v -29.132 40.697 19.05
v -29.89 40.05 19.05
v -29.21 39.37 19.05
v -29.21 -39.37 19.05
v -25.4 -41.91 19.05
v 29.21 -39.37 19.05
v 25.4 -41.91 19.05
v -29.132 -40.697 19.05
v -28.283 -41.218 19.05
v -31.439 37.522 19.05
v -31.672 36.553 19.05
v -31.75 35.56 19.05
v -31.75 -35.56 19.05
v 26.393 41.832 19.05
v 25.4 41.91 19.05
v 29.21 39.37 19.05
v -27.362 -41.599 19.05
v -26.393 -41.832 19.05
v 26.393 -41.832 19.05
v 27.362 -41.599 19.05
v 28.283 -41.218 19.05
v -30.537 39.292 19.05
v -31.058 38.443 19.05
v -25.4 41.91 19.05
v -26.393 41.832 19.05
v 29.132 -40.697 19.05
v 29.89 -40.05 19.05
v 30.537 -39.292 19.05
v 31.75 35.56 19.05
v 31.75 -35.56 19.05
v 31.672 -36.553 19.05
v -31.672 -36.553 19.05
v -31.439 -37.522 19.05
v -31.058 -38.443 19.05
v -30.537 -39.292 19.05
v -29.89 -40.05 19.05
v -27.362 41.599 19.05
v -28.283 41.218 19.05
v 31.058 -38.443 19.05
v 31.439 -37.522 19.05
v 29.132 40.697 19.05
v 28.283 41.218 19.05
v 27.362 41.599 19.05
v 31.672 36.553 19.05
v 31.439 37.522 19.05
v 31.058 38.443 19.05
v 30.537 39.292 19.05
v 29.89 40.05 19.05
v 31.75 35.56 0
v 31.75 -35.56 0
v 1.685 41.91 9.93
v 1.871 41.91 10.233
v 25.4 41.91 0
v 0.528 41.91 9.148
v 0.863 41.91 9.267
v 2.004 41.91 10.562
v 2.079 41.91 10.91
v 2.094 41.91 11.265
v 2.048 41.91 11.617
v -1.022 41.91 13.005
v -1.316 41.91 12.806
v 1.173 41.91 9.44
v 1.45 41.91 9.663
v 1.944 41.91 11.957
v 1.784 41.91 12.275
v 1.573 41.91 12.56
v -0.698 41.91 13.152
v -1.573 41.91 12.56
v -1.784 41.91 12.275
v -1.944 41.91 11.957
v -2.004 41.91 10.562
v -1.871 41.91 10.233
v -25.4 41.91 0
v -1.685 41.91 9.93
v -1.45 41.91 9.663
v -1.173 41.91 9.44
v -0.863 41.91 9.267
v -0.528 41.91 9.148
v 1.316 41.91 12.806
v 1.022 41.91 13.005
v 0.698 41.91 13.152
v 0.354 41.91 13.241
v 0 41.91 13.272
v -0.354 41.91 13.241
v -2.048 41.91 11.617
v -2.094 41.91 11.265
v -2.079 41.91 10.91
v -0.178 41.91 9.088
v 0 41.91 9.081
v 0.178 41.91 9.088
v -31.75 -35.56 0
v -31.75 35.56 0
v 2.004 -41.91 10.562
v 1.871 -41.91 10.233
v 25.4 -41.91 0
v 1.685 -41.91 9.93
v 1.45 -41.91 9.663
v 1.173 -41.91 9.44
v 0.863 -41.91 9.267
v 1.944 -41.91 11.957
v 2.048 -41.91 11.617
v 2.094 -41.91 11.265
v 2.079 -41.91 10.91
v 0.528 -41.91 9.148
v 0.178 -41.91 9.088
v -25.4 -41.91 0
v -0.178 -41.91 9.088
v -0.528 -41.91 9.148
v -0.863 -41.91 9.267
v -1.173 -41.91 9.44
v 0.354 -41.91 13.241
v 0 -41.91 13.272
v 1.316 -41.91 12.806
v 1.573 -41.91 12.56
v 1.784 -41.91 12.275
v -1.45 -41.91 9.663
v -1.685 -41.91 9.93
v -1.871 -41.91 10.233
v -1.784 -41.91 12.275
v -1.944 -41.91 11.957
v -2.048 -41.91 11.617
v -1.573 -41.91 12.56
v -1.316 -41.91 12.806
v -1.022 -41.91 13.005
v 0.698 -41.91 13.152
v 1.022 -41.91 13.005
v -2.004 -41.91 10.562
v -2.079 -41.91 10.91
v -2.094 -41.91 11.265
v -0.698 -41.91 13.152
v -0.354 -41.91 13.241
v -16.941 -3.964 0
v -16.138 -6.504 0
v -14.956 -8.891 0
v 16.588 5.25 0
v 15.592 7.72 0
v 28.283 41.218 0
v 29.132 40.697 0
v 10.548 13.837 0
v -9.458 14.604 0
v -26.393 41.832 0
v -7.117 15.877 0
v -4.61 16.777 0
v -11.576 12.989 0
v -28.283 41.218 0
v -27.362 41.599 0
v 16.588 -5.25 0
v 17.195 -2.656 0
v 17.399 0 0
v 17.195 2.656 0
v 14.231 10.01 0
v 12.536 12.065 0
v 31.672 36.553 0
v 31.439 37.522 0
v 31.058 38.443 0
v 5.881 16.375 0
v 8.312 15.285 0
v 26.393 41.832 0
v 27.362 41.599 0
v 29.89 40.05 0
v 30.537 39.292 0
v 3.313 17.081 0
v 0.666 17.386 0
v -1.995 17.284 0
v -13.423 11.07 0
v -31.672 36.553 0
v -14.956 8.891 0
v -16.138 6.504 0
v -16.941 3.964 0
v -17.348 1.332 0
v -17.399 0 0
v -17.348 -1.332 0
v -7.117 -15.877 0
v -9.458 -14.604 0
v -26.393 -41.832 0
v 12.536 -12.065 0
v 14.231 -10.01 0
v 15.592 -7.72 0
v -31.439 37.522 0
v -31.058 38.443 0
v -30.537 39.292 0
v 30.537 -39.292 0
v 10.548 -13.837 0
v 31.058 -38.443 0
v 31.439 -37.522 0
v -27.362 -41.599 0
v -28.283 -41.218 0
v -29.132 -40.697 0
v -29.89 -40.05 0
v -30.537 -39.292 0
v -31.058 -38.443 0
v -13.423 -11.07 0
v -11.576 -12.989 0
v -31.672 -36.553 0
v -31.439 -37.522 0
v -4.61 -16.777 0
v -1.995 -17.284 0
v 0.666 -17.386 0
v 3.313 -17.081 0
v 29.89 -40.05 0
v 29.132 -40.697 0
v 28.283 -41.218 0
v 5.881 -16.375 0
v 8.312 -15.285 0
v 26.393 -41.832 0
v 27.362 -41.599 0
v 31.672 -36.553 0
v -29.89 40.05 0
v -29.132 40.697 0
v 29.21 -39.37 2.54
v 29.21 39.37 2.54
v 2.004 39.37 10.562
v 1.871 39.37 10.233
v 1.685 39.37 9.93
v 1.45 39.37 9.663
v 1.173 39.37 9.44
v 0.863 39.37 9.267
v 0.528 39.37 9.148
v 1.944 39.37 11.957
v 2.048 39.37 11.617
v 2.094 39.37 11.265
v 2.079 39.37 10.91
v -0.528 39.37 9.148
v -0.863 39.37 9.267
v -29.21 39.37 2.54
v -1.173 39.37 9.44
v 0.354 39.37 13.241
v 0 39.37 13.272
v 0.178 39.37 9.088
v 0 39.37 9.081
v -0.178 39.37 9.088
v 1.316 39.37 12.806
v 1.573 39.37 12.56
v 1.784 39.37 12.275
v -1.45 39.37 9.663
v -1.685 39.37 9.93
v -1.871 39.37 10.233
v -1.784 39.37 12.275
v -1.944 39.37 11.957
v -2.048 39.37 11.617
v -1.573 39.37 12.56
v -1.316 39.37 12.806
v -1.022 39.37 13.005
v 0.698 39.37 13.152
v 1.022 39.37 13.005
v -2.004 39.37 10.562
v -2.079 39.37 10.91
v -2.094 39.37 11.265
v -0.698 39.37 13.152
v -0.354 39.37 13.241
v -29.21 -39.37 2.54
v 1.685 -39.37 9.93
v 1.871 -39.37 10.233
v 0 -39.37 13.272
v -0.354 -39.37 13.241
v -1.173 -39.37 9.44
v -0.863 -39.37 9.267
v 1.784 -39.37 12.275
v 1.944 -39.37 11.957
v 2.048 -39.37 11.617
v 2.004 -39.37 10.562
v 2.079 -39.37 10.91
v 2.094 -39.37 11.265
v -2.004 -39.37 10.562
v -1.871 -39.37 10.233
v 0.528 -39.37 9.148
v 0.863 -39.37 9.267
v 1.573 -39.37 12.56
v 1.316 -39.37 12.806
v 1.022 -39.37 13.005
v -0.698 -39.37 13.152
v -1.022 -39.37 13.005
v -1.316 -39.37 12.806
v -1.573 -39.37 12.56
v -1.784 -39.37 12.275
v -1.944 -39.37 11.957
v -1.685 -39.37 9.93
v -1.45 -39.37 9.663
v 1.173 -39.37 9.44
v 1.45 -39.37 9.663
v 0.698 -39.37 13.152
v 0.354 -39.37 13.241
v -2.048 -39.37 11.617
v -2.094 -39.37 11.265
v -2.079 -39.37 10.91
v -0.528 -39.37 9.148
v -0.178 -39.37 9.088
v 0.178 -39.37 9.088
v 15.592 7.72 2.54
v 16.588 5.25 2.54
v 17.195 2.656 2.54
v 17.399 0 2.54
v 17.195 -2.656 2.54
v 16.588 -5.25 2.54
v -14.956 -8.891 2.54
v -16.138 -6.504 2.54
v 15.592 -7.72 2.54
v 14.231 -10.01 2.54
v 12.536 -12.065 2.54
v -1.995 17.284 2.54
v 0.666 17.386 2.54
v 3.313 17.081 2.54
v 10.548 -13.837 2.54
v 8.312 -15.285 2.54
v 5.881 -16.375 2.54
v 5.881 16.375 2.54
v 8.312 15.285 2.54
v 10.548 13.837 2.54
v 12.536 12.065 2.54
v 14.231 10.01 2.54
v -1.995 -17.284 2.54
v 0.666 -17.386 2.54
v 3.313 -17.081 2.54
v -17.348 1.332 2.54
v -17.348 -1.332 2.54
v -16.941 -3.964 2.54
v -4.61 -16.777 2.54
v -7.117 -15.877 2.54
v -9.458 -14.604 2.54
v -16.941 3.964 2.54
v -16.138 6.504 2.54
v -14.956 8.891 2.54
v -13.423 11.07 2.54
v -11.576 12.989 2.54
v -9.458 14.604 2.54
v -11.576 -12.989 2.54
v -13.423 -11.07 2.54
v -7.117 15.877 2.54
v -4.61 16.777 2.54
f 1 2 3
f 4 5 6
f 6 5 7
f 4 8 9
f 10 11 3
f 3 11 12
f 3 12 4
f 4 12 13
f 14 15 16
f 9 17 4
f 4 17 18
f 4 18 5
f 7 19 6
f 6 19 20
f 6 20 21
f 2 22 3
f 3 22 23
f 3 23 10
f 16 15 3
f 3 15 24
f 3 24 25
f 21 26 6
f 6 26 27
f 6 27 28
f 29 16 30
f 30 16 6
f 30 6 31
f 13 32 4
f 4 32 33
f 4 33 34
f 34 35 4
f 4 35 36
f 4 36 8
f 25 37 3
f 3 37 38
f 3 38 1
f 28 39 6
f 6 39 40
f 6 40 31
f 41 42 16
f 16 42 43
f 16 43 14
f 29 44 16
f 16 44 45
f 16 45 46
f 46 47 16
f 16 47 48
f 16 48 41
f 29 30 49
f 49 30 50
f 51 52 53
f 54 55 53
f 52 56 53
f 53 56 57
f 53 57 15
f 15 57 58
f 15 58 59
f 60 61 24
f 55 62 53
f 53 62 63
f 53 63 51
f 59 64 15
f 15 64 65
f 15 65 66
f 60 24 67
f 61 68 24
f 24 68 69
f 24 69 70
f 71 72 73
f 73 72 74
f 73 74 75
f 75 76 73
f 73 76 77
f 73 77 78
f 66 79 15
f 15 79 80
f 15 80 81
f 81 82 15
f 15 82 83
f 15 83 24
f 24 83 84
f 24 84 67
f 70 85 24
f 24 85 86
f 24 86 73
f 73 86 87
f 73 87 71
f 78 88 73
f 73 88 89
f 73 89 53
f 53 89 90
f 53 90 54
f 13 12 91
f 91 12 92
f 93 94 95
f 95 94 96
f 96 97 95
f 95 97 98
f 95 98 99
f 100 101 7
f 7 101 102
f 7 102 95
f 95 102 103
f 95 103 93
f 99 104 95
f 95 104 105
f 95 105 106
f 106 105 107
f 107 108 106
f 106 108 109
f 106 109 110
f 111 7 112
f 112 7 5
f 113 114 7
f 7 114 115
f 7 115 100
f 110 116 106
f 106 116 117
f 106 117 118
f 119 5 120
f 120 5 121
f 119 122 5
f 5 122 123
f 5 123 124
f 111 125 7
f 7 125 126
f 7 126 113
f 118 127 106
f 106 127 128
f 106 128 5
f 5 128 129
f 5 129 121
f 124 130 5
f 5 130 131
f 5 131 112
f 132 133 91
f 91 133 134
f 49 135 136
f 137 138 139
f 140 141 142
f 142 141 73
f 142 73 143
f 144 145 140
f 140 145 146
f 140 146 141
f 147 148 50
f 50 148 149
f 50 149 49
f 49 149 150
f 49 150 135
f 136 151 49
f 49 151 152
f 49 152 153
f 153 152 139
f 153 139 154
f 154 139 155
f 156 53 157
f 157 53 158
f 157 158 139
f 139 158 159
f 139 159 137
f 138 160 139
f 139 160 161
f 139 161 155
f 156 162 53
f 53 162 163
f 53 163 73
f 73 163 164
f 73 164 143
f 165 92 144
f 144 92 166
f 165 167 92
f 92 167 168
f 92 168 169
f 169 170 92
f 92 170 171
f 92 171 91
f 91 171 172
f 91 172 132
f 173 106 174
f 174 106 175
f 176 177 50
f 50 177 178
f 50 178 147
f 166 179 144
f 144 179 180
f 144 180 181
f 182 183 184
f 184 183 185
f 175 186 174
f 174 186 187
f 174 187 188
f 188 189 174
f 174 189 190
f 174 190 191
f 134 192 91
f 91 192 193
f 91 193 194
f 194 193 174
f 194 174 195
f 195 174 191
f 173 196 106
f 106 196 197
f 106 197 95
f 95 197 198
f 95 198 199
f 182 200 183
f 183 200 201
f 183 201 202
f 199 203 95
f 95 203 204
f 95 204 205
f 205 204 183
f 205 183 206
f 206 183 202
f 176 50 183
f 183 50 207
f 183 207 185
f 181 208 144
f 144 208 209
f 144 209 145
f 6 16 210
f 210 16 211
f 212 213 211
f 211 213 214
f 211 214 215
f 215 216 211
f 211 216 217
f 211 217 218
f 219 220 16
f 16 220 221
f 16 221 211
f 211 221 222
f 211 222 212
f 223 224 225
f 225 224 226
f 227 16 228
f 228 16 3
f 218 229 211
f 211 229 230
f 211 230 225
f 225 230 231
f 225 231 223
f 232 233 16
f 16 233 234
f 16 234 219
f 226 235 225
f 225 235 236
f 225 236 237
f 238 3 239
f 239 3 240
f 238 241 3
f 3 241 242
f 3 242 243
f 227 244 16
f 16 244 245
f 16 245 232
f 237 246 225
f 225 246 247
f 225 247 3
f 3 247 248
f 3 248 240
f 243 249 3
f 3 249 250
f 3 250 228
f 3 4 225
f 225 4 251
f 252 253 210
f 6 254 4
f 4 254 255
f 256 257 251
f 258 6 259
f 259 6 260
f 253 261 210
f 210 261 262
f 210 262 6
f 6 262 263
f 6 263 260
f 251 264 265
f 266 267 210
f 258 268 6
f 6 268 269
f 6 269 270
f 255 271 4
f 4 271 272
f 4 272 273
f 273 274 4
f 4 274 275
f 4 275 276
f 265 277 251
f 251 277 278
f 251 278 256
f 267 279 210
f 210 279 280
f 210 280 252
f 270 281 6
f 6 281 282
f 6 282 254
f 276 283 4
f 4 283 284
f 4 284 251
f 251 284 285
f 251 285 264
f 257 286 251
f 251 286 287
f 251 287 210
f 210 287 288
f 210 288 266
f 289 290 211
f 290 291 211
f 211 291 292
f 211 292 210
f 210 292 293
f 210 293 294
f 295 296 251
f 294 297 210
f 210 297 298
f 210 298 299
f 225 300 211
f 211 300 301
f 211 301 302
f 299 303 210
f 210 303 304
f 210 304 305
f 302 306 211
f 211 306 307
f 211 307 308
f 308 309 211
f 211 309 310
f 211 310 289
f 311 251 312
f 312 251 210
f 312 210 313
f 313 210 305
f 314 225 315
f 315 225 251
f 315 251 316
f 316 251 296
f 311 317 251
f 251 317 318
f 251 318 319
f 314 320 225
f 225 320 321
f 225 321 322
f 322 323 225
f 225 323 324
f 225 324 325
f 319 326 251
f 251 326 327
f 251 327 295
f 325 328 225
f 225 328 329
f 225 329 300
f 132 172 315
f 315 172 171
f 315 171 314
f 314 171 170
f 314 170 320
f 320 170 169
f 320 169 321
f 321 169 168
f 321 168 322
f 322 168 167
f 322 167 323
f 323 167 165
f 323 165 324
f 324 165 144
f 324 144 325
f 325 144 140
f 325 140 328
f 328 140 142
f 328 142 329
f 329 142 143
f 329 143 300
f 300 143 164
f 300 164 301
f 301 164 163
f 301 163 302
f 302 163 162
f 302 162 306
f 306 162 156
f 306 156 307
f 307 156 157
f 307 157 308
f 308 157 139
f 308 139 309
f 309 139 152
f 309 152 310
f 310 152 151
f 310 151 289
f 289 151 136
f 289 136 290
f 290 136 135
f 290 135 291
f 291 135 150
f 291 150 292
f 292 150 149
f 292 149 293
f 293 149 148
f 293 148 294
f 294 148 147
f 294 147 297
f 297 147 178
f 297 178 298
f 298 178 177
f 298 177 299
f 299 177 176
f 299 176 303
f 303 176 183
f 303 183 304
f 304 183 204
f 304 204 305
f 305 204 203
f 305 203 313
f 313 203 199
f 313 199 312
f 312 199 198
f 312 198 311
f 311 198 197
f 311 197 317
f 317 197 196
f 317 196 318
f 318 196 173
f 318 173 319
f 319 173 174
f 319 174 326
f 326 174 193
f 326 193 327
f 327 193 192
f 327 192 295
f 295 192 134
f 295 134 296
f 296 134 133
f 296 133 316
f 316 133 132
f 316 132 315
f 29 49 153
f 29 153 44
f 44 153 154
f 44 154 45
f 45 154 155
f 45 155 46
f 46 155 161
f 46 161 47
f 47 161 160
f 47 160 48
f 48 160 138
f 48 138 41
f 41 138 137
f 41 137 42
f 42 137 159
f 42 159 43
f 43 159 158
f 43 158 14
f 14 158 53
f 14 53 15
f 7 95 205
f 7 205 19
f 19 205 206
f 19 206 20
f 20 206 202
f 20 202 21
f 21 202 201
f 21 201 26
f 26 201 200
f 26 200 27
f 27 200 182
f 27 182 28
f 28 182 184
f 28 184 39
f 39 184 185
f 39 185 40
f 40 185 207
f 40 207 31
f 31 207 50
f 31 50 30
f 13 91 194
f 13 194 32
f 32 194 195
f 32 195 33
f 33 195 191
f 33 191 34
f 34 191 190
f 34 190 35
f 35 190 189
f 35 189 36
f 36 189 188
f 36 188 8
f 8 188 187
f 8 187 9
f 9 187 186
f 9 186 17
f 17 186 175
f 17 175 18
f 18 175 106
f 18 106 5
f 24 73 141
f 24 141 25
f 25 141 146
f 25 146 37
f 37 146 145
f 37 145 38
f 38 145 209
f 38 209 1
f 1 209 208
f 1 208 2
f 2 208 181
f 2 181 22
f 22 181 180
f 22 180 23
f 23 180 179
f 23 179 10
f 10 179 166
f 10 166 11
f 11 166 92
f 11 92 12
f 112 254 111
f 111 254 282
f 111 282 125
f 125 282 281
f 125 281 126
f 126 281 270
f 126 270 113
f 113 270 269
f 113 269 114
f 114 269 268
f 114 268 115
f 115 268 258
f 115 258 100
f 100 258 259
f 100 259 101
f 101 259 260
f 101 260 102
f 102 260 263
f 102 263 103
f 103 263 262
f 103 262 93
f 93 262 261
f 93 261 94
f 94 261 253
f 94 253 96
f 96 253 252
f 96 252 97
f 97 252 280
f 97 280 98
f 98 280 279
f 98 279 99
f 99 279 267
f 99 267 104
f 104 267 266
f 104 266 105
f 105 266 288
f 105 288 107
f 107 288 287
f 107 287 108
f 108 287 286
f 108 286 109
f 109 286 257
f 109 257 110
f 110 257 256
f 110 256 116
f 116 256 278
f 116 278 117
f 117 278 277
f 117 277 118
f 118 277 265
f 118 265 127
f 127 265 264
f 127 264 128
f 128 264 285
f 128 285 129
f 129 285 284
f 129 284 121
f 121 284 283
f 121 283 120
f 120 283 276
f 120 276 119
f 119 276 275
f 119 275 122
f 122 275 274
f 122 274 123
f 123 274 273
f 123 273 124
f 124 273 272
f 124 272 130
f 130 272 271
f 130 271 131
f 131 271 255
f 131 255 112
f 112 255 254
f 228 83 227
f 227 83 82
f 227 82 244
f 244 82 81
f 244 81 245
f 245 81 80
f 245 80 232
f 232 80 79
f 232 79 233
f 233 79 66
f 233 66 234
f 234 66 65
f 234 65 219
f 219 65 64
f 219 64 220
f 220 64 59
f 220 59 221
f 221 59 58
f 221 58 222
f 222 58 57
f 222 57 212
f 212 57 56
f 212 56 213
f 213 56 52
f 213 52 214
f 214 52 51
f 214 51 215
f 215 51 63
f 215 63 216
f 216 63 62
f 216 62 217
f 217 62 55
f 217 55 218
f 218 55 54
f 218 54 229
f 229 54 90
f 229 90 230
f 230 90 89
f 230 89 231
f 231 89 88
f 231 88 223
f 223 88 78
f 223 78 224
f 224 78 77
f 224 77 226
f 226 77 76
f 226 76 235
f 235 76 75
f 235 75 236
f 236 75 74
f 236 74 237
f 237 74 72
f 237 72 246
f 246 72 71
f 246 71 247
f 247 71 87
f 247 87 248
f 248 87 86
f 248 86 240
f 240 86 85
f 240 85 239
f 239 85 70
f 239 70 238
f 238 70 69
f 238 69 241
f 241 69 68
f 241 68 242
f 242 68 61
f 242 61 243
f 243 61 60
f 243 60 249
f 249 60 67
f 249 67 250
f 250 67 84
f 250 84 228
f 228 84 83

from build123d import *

# Parameters (mm, degrees)
SKETCH1_W               = 63.5
SKETCH1_H               = 83.82
BOSS_EXTRUDE1_DEPTH     = 19.05
SHELL1_T                = -2.54
CUT_EXTRUDE1_REACH      = 57.11
SKETCH2_R               = 17.399
FILLET4_R               = 6.35
CUT_EXTRUDE2_DEPTH      = 92.633822358
CUT_EXTRUDE2_DEPTH_BACK = 92.633822358
SKETCH3_R               = 2.0955


with BuildPart() as part:
    # Sketch1 → Boss-Extrude1 (new body)
    with BuildSketch(Plane.XY):
        Rectangle(SKETCH1_W, SKETCH1_H)
    extrude(amount=BOSS_EXTRUDE1_DEPTH)

    # Shell1
    shell1_openings = [part.faces().sort_by_distance(p)[0] for p in [
        (0, 0, 19.05),
    ]]
    offset(amount=SHELL1_T, openings=shell1_openings, kind=Kind.INTERSECTION)

    # Sketch2 → Cut-Extrude1 (cut, up to next)
    with BuildSketch(Plane.XY.offset(2.54), mode=Mode.PRIVATE) as cut_extrude1_sk1:
        Circle(SKETCH2_R)
    cut_extrude1_tool1 = extrude(cut_extrude1_sk1.sketch, amount=-CUT_EXTRUDE1_REACH, mode=Mode.PRIVATE) & part.part
    add(cut_extrude1_tool1.solids().sort_by_distance((0, 0, 2.54))[0], mode=Mode.SUBTRACT)

    # Fillet4
    fillet4_edges = [part.edges().sort_by_distance(p)[0] for p in [
        (31.75, -41.91, 9.525),
        (-31.75, -41.91, 9.525),
        (-31.75, 41.91, 9.525),
        (31.75, 41.91, 9.525),
    ]]
    fillet(fillet4_edges, radius=FILLET4_R)

    # Sketch3 → Cut-Extrude2 (cut, two sides: drawn at the far end of the back side and taken through both)
    with BuildSketch(Plane(origin=(0, 41.91, 0), x_dir=(1, 0, 0), z_dir=(0, 1, 0)).offset(-CUT_EXTRUDE2_DEPTH_BACK)):
        with Locations(Location((0, -11.176, 0), (0, 0, 270))):
            Circle(SKETCH3_R)
    extrude(amount=CUT_EXTRUDE2_DEPTH + CUT_EXTRUDE2_DEPTH_BACK, mode=Mode.SUBTRACT)


solid = part.part
